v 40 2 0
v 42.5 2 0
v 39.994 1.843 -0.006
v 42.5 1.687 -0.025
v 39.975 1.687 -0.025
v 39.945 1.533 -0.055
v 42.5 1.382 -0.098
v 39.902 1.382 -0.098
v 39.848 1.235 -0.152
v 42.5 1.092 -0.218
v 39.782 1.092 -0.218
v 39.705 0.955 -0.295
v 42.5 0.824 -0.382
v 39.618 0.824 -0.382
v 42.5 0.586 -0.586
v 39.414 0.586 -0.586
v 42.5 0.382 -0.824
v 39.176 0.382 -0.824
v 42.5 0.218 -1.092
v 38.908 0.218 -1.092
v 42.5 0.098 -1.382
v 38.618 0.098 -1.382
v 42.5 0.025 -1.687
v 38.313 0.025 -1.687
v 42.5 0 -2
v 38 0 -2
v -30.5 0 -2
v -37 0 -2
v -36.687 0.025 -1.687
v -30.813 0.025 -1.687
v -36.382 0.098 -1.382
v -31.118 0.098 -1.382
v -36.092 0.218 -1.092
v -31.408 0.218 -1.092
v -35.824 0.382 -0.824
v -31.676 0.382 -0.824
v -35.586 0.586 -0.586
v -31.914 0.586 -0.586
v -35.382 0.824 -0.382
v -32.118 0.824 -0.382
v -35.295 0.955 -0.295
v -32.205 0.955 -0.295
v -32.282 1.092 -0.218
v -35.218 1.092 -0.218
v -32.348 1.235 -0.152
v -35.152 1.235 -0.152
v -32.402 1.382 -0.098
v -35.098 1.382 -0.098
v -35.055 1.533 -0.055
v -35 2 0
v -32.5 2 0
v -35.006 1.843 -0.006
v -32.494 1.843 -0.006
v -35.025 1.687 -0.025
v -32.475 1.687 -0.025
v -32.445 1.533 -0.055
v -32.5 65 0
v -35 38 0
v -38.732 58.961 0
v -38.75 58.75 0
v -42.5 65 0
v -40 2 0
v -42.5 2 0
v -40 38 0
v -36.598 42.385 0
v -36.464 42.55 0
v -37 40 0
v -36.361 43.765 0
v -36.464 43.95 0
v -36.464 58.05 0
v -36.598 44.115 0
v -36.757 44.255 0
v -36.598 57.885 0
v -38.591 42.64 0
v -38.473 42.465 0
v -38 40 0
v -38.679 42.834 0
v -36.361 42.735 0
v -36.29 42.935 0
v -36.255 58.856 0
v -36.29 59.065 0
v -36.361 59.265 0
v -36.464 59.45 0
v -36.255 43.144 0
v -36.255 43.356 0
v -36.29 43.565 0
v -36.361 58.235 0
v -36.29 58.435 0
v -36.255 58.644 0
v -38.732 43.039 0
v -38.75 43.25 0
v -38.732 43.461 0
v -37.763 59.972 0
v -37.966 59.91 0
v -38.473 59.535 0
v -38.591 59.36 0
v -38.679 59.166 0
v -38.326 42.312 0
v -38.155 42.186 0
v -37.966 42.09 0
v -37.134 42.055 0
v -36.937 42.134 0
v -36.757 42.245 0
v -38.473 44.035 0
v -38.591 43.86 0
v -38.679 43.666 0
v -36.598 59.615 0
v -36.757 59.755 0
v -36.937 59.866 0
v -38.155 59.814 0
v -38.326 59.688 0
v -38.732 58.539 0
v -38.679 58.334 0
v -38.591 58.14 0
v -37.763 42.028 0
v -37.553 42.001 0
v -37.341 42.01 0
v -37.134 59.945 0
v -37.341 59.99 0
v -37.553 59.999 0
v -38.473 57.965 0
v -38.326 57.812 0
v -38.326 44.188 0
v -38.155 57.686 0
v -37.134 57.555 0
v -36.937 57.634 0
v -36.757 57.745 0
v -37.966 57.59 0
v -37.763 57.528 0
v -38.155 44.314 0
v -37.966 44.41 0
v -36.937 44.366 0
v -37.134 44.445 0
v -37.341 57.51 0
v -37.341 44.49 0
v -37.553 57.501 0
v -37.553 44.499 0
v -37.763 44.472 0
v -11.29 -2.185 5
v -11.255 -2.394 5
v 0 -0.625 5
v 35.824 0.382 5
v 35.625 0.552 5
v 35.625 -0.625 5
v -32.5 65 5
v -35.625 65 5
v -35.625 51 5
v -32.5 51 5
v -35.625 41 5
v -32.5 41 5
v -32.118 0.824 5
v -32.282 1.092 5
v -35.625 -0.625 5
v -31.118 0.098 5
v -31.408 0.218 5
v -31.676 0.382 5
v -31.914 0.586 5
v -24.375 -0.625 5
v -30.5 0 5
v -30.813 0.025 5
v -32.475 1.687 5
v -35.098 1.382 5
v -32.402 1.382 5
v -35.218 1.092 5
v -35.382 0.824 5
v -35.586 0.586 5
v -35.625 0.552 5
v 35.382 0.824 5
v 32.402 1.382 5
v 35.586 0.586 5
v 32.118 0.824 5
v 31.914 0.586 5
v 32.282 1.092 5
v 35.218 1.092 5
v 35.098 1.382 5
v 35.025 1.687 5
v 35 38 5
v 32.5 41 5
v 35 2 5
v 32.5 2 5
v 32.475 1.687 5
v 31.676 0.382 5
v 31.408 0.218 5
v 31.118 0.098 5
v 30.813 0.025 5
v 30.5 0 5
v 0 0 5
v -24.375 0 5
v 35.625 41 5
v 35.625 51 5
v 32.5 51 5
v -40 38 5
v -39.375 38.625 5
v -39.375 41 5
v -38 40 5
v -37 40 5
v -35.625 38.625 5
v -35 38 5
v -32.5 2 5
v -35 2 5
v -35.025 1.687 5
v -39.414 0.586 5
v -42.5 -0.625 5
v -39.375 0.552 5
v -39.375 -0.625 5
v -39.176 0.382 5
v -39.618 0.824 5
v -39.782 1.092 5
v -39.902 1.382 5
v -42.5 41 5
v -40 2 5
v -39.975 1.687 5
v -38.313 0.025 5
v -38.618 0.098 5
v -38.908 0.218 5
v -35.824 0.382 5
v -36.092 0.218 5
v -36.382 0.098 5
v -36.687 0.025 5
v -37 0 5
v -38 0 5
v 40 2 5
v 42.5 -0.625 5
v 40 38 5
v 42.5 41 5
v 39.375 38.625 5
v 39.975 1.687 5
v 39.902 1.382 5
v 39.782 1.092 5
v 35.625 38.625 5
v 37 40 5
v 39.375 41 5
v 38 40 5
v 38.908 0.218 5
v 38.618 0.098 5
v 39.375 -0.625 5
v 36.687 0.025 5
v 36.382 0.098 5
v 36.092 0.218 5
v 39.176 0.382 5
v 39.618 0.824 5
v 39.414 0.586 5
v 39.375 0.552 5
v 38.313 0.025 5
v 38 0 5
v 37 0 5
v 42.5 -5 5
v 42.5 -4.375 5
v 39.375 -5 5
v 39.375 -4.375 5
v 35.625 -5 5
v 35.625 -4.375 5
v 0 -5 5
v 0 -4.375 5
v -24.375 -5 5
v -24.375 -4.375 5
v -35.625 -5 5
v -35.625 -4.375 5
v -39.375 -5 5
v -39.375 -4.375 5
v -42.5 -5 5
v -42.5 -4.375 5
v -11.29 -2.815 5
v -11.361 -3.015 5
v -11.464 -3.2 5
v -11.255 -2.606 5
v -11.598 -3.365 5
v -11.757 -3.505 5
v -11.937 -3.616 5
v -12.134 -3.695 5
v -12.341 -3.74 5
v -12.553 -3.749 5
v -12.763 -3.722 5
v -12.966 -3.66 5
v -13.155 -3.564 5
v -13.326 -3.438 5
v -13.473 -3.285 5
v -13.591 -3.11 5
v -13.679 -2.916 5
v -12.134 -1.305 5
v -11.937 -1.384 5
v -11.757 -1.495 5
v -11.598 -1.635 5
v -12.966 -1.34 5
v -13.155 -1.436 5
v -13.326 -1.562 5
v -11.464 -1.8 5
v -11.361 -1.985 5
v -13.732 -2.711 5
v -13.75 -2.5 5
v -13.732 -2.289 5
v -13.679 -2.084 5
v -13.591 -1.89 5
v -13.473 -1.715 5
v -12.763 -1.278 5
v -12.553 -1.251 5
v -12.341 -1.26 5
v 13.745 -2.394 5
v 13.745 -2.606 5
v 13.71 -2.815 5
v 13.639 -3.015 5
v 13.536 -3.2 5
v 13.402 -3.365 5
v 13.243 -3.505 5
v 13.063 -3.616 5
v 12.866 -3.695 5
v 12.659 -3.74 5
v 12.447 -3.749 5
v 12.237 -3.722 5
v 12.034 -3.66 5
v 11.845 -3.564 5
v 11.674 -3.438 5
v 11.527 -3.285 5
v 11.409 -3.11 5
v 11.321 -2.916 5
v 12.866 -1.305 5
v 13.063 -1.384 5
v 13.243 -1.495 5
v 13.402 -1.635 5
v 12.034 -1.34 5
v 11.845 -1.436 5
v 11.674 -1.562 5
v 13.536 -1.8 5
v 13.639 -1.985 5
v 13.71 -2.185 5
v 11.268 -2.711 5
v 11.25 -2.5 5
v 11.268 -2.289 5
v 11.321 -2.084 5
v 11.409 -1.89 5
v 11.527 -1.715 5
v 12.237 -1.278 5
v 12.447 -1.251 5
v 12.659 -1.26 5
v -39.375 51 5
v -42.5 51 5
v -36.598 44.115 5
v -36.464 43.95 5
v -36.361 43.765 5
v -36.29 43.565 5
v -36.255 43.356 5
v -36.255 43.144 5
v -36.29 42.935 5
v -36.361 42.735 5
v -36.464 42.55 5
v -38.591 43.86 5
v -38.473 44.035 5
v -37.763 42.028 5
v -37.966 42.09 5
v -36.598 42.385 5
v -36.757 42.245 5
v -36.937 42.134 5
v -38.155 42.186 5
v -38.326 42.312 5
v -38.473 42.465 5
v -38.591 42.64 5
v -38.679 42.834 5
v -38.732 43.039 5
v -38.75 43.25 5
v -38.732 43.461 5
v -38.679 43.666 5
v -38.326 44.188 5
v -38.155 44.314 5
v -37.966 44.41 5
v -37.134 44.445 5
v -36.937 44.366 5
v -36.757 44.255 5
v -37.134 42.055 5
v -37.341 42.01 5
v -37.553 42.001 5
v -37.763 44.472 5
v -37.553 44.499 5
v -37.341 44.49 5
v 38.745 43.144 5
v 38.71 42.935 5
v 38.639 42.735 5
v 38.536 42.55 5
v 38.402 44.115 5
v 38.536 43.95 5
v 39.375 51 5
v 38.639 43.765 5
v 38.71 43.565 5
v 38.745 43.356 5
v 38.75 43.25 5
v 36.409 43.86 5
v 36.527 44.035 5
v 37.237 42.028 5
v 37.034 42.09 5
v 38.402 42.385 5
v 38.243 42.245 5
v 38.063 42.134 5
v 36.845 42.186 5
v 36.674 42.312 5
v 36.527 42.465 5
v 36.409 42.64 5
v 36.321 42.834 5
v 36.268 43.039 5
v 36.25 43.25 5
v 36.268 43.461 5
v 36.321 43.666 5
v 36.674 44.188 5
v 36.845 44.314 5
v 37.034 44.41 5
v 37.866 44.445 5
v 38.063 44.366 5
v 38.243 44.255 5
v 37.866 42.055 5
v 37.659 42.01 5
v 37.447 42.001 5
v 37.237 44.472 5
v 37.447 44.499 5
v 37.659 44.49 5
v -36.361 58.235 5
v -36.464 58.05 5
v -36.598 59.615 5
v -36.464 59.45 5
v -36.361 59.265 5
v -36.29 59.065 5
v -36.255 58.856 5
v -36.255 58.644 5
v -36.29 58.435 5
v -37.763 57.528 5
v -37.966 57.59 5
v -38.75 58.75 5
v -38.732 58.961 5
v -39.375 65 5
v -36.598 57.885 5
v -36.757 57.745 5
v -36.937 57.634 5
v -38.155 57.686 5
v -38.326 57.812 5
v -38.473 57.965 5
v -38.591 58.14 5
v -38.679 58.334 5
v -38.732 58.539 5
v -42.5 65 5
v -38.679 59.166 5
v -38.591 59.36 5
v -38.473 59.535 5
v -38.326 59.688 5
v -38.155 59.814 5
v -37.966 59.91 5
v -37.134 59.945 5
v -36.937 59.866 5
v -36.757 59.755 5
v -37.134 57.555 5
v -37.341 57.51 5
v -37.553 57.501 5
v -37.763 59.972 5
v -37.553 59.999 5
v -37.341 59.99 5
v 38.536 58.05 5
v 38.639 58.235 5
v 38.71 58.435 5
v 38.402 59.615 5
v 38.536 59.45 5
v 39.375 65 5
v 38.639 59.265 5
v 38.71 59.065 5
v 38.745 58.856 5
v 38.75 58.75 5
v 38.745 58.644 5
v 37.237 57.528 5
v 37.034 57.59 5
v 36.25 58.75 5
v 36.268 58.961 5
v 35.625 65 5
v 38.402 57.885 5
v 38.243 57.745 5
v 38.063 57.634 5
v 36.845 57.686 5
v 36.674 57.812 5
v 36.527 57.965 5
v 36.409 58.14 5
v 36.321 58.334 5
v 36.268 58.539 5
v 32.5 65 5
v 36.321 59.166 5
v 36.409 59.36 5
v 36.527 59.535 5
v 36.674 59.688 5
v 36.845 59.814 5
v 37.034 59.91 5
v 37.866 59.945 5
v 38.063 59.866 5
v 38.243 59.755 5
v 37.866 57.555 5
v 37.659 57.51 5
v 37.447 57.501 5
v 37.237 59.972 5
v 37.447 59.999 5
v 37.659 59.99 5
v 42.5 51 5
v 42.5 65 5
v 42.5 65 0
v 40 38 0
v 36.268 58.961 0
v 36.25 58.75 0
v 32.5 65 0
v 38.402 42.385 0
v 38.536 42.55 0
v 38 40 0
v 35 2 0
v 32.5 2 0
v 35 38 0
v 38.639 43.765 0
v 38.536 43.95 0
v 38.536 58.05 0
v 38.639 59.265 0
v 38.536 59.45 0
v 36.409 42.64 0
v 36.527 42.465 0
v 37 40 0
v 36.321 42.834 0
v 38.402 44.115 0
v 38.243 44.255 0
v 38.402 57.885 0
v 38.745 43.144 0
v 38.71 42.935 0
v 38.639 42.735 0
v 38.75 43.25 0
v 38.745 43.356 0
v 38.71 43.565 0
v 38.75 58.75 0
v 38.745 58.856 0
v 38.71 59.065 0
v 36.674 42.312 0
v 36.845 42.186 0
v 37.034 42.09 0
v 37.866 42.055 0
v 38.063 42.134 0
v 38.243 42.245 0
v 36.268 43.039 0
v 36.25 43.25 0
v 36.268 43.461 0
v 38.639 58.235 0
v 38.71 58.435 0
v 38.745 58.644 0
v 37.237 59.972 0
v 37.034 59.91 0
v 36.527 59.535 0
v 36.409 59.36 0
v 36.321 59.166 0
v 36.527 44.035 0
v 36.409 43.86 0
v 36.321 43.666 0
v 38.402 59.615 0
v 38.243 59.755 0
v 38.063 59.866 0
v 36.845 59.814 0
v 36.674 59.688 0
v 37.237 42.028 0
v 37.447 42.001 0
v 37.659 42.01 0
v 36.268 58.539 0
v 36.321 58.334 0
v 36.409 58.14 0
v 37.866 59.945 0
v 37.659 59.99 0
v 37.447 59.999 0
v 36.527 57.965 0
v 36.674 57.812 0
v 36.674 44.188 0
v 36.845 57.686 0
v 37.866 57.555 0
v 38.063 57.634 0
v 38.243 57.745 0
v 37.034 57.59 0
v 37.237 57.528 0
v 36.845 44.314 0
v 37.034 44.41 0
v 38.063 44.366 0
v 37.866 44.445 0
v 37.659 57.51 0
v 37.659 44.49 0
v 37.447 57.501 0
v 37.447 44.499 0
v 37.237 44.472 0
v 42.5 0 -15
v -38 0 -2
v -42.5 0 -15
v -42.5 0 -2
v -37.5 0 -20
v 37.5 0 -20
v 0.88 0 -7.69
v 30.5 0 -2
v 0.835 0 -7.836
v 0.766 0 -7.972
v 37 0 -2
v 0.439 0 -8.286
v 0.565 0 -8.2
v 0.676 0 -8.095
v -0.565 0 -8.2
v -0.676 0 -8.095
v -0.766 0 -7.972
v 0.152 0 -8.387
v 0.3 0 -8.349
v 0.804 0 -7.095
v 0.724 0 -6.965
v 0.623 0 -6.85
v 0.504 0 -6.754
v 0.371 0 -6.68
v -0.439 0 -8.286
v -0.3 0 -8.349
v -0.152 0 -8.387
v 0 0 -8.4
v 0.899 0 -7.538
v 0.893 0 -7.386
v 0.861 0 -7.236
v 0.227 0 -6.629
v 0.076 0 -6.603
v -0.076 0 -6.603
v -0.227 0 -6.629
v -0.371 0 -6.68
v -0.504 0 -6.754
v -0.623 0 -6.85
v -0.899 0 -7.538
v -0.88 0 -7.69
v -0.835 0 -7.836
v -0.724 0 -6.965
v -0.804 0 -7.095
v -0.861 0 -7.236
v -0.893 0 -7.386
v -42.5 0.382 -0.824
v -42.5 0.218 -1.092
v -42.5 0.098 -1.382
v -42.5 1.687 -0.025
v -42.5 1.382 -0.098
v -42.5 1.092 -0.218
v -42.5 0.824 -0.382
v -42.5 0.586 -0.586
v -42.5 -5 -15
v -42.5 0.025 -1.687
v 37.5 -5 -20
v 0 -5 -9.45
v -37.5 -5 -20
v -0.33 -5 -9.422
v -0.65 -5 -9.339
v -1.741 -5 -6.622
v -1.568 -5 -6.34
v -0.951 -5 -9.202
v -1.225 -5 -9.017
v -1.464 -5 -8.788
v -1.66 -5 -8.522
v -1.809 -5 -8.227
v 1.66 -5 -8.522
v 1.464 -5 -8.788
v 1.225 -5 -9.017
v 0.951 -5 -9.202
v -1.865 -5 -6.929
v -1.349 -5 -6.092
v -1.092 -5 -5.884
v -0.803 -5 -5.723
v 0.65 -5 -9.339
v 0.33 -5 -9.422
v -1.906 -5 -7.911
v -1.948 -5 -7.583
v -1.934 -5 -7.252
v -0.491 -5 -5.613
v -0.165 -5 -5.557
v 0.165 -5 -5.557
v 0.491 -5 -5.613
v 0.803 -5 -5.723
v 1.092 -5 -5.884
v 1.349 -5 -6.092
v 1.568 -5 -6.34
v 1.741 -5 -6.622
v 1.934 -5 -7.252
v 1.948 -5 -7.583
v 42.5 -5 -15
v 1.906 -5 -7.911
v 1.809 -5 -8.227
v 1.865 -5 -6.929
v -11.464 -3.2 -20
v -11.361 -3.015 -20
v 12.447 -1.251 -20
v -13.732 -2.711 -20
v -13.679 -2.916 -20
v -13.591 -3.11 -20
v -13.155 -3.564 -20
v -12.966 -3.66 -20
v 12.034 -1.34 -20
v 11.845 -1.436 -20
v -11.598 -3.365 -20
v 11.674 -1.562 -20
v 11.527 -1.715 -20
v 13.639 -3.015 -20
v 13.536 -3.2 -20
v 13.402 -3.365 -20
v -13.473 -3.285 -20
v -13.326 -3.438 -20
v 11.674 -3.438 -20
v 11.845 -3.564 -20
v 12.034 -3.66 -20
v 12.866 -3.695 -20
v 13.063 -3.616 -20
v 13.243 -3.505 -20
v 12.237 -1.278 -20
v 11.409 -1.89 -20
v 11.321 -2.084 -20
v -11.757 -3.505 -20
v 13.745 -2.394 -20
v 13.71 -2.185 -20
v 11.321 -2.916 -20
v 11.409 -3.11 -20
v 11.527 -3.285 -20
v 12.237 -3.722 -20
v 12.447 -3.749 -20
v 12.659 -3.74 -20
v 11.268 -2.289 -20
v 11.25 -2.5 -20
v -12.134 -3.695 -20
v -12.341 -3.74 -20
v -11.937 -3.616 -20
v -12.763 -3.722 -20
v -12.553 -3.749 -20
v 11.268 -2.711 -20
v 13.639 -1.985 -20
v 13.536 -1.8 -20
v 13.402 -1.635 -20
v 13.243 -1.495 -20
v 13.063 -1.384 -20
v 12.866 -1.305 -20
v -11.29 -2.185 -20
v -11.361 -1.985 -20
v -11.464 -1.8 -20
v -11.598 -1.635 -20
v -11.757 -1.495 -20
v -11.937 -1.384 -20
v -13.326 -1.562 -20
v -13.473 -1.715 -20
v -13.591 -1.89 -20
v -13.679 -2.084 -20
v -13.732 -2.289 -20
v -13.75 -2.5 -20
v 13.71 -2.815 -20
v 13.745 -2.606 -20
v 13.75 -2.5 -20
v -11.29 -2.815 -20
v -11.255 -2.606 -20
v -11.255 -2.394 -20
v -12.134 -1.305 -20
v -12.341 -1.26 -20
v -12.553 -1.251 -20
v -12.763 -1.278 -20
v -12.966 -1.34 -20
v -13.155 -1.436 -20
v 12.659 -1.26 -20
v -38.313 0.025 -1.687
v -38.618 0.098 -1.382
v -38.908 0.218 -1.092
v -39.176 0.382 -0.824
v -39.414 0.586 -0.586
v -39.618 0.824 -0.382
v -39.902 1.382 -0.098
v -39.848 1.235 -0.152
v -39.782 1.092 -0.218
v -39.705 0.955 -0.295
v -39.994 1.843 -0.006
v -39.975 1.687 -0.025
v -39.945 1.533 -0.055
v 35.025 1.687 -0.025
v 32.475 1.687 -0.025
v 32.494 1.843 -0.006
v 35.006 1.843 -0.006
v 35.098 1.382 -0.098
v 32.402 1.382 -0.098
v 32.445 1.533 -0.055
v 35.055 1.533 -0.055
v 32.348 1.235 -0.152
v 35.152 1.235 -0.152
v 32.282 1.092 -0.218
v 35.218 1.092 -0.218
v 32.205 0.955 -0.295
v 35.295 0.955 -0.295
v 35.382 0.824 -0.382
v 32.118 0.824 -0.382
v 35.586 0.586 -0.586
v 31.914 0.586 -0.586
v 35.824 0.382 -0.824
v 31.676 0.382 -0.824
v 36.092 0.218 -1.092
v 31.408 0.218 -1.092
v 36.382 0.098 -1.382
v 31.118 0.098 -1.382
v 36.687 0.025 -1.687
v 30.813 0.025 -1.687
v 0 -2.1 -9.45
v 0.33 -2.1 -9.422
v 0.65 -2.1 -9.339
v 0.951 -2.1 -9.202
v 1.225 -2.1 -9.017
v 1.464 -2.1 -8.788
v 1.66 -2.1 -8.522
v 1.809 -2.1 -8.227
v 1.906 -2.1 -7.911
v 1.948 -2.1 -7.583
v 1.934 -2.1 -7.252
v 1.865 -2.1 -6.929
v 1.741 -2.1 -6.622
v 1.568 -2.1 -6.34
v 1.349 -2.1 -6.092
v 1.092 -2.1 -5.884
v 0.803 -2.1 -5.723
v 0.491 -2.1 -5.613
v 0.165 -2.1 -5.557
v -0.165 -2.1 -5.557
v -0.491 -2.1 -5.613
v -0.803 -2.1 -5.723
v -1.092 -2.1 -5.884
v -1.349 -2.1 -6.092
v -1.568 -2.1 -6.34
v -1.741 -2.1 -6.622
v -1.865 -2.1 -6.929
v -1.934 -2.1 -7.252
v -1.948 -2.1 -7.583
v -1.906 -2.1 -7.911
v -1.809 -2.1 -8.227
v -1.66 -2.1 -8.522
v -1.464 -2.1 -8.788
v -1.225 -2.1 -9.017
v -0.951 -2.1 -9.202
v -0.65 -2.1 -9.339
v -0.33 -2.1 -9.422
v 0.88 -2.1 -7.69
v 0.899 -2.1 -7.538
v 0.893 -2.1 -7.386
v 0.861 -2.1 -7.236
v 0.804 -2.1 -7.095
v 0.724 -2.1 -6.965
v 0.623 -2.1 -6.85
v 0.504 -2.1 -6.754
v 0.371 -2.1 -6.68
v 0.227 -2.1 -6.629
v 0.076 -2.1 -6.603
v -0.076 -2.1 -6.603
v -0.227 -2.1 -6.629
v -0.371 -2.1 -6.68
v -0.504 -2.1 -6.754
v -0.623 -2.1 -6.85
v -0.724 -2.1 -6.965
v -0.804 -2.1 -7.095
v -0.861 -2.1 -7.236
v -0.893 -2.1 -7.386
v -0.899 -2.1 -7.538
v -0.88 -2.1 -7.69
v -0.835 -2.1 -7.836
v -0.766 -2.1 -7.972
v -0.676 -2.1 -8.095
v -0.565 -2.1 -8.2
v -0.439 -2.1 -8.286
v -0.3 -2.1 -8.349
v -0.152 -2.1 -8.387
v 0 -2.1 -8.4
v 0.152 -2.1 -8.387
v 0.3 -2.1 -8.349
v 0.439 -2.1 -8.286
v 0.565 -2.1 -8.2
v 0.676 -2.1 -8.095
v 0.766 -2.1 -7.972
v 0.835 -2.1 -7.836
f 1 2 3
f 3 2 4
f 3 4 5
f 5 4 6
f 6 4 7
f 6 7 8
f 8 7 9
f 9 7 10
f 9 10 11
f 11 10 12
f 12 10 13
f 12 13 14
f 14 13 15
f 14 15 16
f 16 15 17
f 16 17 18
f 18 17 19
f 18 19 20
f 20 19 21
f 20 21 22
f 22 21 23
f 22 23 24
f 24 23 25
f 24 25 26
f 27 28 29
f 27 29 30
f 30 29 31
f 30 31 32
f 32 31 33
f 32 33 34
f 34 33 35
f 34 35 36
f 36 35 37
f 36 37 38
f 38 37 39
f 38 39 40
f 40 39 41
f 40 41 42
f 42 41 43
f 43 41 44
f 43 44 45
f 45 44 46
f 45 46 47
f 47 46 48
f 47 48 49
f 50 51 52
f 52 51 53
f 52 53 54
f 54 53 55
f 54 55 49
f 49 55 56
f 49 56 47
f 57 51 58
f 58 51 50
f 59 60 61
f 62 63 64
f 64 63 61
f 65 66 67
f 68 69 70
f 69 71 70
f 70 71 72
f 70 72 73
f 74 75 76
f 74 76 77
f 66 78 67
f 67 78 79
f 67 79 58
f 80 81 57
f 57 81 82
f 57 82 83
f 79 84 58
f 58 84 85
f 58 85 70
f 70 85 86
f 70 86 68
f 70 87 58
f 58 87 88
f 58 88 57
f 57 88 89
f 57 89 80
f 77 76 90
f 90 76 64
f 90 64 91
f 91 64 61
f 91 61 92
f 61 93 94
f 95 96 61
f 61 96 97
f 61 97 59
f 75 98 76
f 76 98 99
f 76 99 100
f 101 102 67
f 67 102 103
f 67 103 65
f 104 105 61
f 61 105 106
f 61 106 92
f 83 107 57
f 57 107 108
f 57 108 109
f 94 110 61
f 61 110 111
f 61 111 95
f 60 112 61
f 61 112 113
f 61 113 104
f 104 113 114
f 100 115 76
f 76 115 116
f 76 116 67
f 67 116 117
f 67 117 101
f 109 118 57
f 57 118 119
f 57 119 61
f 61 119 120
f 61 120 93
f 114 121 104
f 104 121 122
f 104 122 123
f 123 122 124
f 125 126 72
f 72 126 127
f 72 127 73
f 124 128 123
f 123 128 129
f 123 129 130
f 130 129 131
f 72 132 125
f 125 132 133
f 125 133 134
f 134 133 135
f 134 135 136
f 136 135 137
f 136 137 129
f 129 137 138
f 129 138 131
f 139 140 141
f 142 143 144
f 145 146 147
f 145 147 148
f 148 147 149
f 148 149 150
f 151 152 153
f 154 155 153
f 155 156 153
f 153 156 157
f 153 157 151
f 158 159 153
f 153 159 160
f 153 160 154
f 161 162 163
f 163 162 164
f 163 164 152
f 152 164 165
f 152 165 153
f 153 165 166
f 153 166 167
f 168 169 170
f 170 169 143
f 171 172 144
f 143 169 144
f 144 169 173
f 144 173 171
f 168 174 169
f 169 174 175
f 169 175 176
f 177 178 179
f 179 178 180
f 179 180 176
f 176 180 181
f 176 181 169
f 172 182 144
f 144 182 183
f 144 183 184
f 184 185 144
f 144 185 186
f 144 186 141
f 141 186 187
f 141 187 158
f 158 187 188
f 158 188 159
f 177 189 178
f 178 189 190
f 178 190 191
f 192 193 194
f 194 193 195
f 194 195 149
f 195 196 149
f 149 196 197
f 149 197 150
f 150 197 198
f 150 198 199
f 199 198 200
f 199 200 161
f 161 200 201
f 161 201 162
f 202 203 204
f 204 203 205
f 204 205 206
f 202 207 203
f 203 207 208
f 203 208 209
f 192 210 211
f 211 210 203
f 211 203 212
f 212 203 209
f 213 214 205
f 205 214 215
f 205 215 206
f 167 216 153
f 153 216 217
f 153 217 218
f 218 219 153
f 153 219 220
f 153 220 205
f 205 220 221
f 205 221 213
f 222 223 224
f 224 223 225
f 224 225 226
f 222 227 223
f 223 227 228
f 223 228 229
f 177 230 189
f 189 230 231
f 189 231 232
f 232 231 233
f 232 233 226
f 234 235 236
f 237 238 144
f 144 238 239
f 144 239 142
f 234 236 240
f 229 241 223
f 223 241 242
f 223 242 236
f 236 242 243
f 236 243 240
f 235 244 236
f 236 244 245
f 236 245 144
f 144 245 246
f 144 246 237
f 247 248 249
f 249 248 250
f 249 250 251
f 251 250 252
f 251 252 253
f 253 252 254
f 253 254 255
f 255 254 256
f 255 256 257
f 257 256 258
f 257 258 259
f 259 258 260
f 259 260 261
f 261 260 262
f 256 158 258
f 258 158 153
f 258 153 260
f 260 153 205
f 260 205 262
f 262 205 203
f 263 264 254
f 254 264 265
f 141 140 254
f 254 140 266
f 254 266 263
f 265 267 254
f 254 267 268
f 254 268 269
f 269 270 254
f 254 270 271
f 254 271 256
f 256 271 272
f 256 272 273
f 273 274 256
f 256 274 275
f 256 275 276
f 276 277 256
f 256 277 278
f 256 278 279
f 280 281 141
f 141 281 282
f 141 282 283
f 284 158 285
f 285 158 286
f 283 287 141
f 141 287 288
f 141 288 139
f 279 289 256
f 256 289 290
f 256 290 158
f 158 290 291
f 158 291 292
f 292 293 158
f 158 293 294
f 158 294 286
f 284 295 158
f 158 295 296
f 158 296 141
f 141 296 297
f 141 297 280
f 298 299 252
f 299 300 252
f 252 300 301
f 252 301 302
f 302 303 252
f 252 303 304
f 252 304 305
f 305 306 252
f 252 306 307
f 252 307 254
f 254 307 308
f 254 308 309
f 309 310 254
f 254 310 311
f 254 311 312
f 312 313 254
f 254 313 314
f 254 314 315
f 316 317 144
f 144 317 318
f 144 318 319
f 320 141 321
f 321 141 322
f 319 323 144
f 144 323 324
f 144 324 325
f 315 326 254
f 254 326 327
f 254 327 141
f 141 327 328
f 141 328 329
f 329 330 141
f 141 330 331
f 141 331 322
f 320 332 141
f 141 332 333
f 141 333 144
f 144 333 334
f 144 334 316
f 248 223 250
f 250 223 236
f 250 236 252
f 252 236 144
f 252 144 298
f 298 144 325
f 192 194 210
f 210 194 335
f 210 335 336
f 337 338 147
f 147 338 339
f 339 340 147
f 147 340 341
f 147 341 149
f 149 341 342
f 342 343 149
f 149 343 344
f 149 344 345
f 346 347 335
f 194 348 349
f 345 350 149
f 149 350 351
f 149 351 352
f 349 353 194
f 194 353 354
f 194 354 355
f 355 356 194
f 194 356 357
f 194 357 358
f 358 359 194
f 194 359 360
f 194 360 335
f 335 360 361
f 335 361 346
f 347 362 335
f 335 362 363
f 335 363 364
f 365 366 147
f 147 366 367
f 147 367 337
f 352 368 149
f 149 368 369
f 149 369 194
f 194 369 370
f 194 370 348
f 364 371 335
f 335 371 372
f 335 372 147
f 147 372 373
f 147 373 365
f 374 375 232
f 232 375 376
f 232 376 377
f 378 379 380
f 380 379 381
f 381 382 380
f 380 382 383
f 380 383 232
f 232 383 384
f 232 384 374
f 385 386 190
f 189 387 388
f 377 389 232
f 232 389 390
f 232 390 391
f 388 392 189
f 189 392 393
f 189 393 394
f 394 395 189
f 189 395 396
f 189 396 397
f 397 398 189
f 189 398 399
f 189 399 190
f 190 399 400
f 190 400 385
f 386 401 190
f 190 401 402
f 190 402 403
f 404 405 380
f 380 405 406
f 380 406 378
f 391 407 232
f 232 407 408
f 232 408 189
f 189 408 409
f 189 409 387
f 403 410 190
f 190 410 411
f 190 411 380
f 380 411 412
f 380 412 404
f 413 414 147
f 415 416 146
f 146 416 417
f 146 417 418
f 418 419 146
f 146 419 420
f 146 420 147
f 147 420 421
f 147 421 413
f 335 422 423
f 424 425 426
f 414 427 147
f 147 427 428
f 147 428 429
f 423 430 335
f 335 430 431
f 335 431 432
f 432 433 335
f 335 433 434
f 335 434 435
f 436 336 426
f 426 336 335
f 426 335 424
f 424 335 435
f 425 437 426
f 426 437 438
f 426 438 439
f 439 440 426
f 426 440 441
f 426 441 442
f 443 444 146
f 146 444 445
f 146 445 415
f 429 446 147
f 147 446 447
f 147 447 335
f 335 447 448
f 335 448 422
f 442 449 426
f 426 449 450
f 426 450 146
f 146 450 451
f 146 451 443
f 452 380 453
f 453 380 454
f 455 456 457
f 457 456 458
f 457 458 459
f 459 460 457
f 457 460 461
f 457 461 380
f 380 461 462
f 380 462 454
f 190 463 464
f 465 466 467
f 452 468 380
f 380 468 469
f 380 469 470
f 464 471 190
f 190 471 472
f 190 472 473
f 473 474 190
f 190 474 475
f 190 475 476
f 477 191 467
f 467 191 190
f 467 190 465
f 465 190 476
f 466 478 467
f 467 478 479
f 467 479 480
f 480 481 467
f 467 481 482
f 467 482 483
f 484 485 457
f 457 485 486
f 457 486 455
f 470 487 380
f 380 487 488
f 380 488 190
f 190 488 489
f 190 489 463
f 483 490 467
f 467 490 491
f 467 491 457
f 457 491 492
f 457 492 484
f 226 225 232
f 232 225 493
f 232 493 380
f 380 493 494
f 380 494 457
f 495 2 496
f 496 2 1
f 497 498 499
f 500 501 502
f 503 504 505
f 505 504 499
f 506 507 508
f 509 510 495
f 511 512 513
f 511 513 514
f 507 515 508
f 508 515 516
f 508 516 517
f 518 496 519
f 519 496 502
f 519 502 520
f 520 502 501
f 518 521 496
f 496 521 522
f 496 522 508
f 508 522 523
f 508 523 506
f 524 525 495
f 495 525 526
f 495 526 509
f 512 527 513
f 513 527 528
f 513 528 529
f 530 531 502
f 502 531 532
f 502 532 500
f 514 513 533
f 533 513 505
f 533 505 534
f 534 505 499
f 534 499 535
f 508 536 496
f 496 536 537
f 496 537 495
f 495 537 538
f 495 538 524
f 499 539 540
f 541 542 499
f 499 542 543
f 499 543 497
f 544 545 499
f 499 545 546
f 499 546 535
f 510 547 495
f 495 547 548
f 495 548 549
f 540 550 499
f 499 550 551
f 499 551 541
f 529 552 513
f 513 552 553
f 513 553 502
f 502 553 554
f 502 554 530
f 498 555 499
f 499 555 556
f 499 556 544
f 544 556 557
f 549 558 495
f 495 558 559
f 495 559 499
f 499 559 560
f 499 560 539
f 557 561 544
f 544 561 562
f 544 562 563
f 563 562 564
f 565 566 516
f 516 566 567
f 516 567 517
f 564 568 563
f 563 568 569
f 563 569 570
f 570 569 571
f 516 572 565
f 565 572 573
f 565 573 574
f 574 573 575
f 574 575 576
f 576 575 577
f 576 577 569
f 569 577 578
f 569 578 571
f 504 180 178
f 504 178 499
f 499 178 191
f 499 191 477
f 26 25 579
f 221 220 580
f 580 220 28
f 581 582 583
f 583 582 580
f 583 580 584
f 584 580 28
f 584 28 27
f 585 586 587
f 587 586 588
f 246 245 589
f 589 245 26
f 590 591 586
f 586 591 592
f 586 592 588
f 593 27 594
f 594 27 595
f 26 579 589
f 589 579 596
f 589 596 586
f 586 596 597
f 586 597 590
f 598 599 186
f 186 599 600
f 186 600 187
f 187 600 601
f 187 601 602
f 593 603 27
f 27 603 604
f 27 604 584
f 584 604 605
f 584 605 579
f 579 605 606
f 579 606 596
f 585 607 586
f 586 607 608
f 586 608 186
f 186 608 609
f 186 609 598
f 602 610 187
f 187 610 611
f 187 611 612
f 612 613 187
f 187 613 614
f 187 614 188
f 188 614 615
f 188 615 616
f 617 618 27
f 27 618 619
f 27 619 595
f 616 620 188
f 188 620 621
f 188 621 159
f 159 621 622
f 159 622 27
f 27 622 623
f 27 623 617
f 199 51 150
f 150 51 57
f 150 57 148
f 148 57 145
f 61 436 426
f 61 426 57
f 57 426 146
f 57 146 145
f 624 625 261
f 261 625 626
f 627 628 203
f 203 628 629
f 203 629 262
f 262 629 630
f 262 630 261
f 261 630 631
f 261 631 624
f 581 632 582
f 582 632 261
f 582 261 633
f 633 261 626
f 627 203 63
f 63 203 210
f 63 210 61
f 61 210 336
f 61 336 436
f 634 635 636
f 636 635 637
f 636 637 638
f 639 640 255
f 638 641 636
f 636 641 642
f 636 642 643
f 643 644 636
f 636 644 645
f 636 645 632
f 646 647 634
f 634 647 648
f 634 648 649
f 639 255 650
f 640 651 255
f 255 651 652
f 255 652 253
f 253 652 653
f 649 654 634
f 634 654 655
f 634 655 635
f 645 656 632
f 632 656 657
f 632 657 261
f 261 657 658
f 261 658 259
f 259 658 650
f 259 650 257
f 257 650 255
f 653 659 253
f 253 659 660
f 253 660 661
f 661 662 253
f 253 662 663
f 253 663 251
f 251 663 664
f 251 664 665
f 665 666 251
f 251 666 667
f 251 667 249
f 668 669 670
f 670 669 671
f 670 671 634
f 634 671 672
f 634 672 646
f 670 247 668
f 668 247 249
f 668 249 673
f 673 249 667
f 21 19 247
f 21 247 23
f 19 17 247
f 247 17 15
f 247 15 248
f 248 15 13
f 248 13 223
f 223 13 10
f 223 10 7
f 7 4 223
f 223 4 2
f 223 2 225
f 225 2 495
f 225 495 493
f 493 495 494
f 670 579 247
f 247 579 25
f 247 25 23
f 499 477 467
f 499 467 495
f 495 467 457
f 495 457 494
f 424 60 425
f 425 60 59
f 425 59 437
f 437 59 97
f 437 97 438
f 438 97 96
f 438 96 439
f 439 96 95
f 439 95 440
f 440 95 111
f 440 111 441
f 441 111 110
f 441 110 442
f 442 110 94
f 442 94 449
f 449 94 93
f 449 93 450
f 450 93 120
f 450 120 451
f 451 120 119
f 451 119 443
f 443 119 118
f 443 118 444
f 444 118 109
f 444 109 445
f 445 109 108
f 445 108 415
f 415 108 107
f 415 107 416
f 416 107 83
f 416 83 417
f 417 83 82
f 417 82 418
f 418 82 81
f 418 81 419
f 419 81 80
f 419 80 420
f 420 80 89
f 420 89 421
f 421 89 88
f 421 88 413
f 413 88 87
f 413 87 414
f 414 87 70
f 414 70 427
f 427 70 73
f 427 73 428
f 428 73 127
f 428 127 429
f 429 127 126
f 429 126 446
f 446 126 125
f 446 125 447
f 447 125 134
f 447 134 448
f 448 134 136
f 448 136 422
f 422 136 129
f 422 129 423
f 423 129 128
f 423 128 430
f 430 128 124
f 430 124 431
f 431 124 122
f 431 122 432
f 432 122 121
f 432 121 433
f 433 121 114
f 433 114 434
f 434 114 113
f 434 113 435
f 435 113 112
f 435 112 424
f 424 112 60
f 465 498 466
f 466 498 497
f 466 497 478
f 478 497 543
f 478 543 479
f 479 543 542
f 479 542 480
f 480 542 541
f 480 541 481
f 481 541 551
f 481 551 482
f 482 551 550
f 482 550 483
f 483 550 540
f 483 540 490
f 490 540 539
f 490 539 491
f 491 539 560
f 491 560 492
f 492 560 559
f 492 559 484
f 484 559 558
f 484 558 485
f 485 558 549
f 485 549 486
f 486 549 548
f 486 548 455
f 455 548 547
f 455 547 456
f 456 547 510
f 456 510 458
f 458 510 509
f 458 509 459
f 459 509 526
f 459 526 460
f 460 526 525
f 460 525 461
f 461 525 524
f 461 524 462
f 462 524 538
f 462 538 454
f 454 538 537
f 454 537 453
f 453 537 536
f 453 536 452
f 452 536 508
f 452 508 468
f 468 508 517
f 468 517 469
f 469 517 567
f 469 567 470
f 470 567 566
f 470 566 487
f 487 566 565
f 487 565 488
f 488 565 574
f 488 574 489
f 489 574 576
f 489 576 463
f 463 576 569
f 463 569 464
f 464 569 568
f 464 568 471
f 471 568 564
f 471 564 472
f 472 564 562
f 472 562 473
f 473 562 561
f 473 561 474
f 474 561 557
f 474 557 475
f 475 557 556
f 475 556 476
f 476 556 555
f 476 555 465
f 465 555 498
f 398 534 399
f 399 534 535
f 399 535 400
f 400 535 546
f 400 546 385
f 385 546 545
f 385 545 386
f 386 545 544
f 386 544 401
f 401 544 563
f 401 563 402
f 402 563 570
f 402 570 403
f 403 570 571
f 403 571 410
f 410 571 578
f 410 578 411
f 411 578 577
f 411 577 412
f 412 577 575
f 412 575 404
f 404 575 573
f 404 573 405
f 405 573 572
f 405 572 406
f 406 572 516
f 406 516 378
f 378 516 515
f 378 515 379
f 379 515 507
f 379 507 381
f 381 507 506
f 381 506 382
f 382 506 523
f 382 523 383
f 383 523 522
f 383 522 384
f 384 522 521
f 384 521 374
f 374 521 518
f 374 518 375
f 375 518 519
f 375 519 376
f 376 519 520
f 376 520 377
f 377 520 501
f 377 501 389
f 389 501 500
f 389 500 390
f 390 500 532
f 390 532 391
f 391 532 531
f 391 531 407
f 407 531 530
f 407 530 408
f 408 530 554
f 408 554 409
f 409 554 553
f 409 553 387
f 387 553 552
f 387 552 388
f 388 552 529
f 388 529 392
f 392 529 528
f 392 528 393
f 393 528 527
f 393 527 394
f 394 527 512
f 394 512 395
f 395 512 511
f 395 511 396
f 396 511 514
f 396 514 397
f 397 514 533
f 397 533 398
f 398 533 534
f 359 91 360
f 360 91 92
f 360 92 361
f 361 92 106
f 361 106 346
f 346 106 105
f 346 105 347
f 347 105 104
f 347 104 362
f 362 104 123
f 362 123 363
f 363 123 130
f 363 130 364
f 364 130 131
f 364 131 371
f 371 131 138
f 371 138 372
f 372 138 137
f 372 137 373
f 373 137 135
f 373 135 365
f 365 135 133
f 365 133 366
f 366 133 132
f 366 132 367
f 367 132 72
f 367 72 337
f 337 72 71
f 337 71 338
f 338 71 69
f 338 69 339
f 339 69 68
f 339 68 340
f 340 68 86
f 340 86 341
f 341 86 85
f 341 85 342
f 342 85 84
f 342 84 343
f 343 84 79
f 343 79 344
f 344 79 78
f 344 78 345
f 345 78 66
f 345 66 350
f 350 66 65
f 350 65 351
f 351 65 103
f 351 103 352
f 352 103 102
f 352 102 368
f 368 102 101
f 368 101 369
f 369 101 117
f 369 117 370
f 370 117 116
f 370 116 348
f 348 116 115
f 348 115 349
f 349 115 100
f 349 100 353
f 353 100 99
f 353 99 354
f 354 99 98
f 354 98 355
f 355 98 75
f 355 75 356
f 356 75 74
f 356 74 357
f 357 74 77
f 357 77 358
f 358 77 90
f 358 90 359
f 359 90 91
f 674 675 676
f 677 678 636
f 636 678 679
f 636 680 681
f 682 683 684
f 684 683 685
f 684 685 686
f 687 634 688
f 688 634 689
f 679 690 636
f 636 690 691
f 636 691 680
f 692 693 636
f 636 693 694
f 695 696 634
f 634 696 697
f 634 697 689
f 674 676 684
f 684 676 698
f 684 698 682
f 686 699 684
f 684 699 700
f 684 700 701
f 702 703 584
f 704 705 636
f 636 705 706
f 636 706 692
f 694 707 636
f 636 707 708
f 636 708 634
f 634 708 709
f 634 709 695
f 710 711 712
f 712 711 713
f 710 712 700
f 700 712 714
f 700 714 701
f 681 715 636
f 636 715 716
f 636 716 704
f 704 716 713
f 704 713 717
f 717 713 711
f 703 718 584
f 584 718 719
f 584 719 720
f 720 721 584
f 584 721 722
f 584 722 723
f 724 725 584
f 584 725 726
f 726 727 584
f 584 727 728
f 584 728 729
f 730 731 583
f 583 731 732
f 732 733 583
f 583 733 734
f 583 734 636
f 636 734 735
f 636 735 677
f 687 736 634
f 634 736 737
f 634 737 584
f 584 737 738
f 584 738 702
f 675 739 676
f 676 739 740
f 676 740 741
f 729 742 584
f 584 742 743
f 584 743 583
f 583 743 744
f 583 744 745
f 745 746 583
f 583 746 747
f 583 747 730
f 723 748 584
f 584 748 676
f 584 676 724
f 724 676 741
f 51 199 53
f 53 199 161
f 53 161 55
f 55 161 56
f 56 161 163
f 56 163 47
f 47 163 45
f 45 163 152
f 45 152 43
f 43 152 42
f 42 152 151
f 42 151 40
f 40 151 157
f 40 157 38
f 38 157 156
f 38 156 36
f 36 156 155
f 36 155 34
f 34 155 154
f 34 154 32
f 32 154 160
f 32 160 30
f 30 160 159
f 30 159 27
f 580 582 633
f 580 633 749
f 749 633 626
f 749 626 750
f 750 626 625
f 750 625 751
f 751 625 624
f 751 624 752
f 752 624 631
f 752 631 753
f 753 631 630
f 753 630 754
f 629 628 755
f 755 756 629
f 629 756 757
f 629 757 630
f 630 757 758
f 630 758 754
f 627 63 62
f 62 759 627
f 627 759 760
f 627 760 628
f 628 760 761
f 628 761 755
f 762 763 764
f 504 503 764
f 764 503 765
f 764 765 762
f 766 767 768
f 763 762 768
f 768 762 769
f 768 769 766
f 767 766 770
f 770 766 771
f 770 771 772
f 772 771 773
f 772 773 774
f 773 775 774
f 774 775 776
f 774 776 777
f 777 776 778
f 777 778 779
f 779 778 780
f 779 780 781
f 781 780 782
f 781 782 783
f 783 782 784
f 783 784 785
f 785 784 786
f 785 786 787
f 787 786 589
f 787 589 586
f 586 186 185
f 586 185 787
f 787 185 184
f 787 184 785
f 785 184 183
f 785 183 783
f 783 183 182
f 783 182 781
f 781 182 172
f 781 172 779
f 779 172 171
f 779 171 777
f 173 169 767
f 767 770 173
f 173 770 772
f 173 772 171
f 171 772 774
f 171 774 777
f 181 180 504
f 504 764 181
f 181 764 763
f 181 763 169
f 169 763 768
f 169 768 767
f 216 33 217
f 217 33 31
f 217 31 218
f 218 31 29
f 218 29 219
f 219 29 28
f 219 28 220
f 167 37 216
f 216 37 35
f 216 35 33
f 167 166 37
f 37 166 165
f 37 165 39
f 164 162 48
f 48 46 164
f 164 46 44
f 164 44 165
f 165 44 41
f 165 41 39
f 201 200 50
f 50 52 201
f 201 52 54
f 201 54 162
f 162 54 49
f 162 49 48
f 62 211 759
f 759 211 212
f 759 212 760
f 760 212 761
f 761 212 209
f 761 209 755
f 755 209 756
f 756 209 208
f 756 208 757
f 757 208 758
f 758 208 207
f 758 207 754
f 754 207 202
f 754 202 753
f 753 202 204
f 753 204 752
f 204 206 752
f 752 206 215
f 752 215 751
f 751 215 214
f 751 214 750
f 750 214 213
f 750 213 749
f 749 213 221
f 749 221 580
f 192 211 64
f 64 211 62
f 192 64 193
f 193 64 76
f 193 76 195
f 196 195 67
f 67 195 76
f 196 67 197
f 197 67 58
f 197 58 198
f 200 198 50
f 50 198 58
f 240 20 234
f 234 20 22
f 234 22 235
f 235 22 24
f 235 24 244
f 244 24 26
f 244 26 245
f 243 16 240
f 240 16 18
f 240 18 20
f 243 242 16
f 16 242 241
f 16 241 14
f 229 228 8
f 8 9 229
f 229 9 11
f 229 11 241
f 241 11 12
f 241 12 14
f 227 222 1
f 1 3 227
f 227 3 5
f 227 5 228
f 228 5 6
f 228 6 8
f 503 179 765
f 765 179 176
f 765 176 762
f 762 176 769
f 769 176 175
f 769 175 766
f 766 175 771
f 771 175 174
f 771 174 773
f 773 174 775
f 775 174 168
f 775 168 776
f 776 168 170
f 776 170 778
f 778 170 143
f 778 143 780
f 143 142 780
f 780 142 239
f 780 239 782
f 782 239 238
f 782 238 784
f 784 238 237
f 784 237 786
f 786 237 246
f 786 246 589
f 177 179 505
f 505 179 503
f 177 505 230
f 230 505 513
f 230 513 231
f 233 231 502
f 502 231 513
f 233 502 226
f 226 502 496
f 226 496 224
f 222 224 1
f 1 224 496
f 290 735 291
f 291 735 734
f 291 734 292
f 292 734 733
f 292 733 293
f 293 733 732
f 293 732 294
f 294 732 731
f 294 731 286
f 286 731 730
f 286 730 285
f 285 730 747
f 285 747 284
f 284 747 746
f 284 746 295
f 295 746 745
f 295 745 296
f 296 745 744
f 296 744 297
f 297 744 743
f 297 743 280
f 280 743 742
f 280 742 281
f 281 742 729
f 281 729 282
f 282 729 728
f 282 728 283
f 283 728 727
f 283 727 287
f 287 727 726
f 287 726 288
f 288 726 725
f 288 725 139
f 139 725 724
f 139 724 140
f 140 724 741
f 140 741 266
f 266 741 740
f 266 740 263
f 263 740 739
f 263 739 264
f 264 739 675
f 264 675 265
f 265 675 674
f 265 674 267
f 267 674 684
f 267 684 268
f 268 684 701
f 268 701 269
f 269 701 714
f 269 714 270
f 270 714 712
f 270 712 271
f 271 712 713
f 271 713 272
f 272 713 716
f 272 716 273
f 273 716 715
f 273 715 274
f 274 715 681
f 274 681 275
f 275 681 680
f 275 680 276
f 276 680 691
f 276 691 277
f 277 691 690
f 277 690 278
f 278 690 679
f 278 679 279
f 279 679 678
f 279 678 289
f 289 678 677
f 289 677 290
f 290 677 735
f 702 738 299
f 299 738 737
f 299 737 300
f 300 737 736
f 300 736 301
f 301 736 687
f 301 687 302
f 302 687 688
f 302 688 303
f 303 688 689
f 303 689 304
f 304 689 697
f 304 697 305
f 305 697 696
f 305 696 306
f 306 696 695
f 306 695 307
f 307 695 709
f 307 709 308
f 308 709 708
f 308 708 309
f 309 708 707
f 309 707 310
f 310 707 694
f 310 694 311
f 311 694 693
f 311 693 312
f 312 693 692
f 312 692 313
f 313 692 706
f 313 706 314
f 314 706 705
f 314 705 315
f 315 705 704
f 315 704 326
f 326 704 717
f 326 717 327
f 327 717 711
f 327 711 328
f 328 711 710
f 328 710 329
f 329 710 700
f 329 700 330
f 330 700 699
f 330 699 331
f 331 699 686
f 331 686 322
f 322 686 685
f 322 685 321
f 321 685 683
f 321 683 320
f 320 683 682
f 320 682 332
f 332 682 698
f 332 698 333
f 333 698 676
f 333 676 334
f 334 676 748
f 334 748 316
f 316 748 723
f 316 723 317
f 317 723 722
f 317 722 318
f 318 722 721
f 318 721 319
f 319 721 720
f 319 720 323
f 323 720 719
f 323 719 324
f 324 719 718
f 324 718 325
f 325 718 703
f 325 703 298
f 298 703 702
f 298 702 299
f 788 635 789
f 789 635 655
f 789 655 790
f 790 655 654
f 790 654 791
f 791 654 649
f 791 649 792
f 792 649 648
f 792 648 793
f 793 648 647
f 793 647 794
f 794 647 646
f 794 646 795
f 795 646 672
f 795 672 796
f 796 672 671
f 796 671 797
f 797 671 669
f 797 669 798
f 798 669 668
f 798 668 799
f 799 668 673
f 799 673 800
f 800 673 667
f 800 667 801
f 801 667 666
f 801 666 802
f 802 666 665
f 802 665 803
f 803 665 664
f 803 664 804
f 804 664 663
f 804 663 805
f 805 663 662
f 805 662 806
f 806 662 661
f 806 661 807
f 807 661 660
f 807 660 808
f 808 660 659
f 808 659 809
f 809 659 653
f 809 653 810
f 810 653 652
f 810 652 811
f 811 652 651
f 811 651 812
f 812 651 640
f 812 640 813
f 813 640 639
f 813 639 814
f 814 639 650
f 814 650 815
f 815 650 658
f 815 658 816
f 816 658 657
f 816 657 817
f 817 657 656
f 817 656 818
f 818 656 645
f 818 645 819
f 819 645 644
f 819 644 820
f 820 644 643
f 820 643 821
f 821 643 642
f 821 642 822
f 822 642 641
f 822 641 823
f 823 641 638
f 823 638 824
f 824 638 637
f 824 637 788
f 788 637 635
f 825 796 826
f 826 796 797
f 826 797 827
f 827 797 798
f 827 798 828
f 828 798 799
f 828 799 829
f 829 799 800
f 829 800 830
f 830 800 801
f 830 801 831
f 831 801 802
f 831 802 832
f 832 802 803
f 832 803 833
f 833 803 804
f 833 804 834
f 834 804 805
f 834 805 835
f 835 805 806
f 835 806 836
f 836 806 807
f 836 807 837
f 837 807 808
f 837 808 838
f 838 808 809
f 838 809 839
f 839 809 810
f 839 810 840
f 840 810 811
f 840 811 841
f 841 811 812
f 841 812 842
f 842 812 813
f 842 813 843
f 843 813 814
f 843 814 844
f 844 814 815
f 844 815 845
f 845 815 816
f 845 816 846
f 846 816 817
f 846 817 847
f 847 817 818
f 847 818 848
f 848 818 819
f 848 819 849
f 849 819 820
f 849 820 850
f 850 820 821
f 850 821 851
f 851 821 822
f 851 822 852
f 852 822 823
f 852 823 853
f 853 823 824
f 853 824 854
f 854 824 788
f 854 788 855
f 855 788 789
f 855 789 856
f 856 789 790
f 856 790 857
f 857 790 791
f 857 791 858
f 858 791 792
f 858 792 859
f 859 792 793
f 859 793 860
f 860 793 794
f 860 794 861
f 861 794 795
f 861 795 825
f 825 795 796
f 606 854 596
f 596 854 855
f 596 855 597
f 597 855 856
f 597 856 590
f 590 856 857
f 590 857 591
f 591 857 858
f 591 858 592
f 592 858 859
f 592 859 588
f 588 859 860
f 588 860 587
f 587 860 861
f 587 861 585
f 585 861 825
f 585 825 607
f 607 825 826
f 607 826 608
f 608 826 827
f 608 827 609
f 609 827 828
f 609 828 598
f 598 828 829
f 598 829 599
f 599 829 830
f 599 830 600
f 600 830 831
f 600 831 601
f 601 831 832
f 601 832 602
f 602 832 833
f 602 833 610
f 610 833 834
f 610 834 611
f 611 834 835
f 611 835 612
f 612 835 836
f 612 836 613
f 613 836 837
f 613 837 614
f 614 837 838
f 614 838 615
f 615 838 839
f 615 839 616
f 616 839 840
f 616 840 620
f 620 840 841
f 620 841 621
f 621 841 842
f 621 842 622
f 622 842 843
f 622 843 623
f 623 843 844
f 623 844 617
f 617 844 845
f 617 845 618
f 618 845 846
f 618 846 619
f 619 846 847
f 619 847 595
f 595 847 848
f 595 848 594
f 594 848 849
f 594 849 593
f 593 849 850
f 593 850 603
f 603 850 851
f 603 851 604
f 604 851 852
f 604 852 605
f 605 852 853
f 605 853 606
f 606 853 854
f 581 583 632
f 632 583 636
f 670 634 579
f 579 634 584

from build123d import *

# Parameters (mm, degrees)
SKETCH1_R           = 1.25
BOSS_EXTRUDE1_DEPTH = 5
SKETCH2_W           = 85
SKETCH2_H           = 5
BOSS_EXTRUDE2_DEPTH = 20
FILLET1_R           = 2
CUT_EXTRUDE1_DEPTH  = 25
SKETCH9_R           = 1.25
CUT_EXTRUDE2_DEPTH  = 58
SKETCH10_R          = 1.95
CUT_EXTRUDE3_DEPTH  = 2.9
SKETCH11_R          = 0.9
CUT_EXTRUDE4_DEPTH  = 6.9
CHAMFER1_SIZE       = 5


with BuildPart() as part:
    # Sketch1 → Boss-Extrude1 (new body)
    with BuildSketch(Plane.XY):
        Polygon((-32.5, 0), (32.5, 0), (32.5, 65), (42.5, 65), (42.5, 0), (42.5, -5), (-42.5, -5), (-42.5, 0), (-42.5, 65), (-32.5, 65), align=None)
        with Locations((37.5, 58.75)):
            Circle(SKETCH1_R, mode=Mode.SUBTRACT)
        with Locations((37.5, 43.25)):
            Circle(SKETCH1_R, mode=Mode.SUBTRACT)
        with Locations(Location((-37.5, 58.75, 0), (0, 0, 180))):
            Circle(SKETCH1_R, mode=Mode.SUBTRACT)
        with Locations(Location((-37.5, 43.25, 0), (0, 0, 180))):
            Circle(SKETCH1_R, mode=Mode.SUBTRACT)
    extrude(amount=BOSS_EXTRUDE1_DEPTH)

    # Sketch2 → Boss-Extrude2 (add)
    with BuildSketch(Plane(origin=(0, 0, 0), x_dir=(-1, 0, 0), z_dir=(0, 0, -1))):
        with Locations((0, -2.5)):
            Rectangle(SKETCH2_W, SKETCH2_H)
    extrude(amount=BOSS_EXTRUDE2_DEPTH)

    # Fillet1
    fillet1_edges = [part.edges().sort_by_distance(p)[0] for p in [
        (-37.5, 0, 0),
        (-32.5, 0, 2.5),
        (32.5, 0, 2.5),
        (37.5, 0, 0),
    ]]
    fillet(fillet1_edges, radius=FILLET1_R)

    # Sketch8 → Cut-Extrude1 (cut)
    with BuildSketch(Plane.XY.offset(5)):
        with BuildLine():
            Line((-38, 0), (-37, 0))
            ThreePointArc((-37, 0), (-35.585786438, 0.585786438), (-35, 2))
            Line((-35, 2), (-35, 38))
            Line((-35, 38), (-37, 40))
            Line((-37, 40), (-38, 40))
            Line((-38, 40), (-40, 38))
            Line((-40, 38), (-40, 2))
            ThreePointArc((-40, 2), (-39.414213562, 0.585786438), (-38, 0))
        make_face()
        with BuildLine():
            Line((38, 0), (37, 0))
            ThreePointArc((37, 0), (35.585786438, 0.585786438), (35, 2))
            Line((35, 2), (35, 38))
            Line((35, 38), (37, 40))
            Line((37, 40), (38, 40))
            Line((38, 40), (40, 38))
            Line((40, 38), (40, 2))
            ThreePointArc((40, 2), (39.414213562, 0.585786438), (38, 0))
        make_face()
    extrude(amount=-CUT_EXTRUDE1_DEPTH, mode=Mode.SUBTRACT)

    # Sketch9 → Cut-Extrude2 (cut)
    with BuildSketch(Plane(origin=(0, 0, -20), x_dir=(-1, 0, 0), z_dir=(0, 0, -1))):
        with Locations((12.5, -2.5)):
            Circle(SKETCH9_R)
        with Locations((-12.5, -2.5)):
            Circle(SKETCH9_R)
    extrude(amount=-CUT_EXTRUDE2_DEPTH, mode=Mode.SUBTRACT)

    # Sketch10 → Cut-Extrude3 (cut)
    with BuildSketch(Plane.XZ.offset(5)):
        with Locations(Location((0, -7.5, 0), (0, 0, 270))):
            Circle(SKETCH10_R)
    extrude(amount=-CUT_EXTRUDE3_DEPTH, mode=Mode.SUBTRACT)

    # Sketch11 → Cut-Extrude4 (cut)
    with BuildSketch(Plane.XZ.offset(2.1)):
        with Locations(Location((0, -7.5, 0), (0, 0, 270))):
            Circle(SKETCH11_R)
    extrude(amount=-CUT_EXTRUDE4_DEPTH, mode=Mode.SUBTRACT)

    # Chamfer1
    chamfer1_edges = [part.edges().sort_by_distance(p)[0] for p in [
        (-42.5, -2.5, -20),
        (42.5, -2.5, -20),
    ]]
    chamfer(chamfer1_edges, length=CHAMFER1_SIZE)


solid = part.part
